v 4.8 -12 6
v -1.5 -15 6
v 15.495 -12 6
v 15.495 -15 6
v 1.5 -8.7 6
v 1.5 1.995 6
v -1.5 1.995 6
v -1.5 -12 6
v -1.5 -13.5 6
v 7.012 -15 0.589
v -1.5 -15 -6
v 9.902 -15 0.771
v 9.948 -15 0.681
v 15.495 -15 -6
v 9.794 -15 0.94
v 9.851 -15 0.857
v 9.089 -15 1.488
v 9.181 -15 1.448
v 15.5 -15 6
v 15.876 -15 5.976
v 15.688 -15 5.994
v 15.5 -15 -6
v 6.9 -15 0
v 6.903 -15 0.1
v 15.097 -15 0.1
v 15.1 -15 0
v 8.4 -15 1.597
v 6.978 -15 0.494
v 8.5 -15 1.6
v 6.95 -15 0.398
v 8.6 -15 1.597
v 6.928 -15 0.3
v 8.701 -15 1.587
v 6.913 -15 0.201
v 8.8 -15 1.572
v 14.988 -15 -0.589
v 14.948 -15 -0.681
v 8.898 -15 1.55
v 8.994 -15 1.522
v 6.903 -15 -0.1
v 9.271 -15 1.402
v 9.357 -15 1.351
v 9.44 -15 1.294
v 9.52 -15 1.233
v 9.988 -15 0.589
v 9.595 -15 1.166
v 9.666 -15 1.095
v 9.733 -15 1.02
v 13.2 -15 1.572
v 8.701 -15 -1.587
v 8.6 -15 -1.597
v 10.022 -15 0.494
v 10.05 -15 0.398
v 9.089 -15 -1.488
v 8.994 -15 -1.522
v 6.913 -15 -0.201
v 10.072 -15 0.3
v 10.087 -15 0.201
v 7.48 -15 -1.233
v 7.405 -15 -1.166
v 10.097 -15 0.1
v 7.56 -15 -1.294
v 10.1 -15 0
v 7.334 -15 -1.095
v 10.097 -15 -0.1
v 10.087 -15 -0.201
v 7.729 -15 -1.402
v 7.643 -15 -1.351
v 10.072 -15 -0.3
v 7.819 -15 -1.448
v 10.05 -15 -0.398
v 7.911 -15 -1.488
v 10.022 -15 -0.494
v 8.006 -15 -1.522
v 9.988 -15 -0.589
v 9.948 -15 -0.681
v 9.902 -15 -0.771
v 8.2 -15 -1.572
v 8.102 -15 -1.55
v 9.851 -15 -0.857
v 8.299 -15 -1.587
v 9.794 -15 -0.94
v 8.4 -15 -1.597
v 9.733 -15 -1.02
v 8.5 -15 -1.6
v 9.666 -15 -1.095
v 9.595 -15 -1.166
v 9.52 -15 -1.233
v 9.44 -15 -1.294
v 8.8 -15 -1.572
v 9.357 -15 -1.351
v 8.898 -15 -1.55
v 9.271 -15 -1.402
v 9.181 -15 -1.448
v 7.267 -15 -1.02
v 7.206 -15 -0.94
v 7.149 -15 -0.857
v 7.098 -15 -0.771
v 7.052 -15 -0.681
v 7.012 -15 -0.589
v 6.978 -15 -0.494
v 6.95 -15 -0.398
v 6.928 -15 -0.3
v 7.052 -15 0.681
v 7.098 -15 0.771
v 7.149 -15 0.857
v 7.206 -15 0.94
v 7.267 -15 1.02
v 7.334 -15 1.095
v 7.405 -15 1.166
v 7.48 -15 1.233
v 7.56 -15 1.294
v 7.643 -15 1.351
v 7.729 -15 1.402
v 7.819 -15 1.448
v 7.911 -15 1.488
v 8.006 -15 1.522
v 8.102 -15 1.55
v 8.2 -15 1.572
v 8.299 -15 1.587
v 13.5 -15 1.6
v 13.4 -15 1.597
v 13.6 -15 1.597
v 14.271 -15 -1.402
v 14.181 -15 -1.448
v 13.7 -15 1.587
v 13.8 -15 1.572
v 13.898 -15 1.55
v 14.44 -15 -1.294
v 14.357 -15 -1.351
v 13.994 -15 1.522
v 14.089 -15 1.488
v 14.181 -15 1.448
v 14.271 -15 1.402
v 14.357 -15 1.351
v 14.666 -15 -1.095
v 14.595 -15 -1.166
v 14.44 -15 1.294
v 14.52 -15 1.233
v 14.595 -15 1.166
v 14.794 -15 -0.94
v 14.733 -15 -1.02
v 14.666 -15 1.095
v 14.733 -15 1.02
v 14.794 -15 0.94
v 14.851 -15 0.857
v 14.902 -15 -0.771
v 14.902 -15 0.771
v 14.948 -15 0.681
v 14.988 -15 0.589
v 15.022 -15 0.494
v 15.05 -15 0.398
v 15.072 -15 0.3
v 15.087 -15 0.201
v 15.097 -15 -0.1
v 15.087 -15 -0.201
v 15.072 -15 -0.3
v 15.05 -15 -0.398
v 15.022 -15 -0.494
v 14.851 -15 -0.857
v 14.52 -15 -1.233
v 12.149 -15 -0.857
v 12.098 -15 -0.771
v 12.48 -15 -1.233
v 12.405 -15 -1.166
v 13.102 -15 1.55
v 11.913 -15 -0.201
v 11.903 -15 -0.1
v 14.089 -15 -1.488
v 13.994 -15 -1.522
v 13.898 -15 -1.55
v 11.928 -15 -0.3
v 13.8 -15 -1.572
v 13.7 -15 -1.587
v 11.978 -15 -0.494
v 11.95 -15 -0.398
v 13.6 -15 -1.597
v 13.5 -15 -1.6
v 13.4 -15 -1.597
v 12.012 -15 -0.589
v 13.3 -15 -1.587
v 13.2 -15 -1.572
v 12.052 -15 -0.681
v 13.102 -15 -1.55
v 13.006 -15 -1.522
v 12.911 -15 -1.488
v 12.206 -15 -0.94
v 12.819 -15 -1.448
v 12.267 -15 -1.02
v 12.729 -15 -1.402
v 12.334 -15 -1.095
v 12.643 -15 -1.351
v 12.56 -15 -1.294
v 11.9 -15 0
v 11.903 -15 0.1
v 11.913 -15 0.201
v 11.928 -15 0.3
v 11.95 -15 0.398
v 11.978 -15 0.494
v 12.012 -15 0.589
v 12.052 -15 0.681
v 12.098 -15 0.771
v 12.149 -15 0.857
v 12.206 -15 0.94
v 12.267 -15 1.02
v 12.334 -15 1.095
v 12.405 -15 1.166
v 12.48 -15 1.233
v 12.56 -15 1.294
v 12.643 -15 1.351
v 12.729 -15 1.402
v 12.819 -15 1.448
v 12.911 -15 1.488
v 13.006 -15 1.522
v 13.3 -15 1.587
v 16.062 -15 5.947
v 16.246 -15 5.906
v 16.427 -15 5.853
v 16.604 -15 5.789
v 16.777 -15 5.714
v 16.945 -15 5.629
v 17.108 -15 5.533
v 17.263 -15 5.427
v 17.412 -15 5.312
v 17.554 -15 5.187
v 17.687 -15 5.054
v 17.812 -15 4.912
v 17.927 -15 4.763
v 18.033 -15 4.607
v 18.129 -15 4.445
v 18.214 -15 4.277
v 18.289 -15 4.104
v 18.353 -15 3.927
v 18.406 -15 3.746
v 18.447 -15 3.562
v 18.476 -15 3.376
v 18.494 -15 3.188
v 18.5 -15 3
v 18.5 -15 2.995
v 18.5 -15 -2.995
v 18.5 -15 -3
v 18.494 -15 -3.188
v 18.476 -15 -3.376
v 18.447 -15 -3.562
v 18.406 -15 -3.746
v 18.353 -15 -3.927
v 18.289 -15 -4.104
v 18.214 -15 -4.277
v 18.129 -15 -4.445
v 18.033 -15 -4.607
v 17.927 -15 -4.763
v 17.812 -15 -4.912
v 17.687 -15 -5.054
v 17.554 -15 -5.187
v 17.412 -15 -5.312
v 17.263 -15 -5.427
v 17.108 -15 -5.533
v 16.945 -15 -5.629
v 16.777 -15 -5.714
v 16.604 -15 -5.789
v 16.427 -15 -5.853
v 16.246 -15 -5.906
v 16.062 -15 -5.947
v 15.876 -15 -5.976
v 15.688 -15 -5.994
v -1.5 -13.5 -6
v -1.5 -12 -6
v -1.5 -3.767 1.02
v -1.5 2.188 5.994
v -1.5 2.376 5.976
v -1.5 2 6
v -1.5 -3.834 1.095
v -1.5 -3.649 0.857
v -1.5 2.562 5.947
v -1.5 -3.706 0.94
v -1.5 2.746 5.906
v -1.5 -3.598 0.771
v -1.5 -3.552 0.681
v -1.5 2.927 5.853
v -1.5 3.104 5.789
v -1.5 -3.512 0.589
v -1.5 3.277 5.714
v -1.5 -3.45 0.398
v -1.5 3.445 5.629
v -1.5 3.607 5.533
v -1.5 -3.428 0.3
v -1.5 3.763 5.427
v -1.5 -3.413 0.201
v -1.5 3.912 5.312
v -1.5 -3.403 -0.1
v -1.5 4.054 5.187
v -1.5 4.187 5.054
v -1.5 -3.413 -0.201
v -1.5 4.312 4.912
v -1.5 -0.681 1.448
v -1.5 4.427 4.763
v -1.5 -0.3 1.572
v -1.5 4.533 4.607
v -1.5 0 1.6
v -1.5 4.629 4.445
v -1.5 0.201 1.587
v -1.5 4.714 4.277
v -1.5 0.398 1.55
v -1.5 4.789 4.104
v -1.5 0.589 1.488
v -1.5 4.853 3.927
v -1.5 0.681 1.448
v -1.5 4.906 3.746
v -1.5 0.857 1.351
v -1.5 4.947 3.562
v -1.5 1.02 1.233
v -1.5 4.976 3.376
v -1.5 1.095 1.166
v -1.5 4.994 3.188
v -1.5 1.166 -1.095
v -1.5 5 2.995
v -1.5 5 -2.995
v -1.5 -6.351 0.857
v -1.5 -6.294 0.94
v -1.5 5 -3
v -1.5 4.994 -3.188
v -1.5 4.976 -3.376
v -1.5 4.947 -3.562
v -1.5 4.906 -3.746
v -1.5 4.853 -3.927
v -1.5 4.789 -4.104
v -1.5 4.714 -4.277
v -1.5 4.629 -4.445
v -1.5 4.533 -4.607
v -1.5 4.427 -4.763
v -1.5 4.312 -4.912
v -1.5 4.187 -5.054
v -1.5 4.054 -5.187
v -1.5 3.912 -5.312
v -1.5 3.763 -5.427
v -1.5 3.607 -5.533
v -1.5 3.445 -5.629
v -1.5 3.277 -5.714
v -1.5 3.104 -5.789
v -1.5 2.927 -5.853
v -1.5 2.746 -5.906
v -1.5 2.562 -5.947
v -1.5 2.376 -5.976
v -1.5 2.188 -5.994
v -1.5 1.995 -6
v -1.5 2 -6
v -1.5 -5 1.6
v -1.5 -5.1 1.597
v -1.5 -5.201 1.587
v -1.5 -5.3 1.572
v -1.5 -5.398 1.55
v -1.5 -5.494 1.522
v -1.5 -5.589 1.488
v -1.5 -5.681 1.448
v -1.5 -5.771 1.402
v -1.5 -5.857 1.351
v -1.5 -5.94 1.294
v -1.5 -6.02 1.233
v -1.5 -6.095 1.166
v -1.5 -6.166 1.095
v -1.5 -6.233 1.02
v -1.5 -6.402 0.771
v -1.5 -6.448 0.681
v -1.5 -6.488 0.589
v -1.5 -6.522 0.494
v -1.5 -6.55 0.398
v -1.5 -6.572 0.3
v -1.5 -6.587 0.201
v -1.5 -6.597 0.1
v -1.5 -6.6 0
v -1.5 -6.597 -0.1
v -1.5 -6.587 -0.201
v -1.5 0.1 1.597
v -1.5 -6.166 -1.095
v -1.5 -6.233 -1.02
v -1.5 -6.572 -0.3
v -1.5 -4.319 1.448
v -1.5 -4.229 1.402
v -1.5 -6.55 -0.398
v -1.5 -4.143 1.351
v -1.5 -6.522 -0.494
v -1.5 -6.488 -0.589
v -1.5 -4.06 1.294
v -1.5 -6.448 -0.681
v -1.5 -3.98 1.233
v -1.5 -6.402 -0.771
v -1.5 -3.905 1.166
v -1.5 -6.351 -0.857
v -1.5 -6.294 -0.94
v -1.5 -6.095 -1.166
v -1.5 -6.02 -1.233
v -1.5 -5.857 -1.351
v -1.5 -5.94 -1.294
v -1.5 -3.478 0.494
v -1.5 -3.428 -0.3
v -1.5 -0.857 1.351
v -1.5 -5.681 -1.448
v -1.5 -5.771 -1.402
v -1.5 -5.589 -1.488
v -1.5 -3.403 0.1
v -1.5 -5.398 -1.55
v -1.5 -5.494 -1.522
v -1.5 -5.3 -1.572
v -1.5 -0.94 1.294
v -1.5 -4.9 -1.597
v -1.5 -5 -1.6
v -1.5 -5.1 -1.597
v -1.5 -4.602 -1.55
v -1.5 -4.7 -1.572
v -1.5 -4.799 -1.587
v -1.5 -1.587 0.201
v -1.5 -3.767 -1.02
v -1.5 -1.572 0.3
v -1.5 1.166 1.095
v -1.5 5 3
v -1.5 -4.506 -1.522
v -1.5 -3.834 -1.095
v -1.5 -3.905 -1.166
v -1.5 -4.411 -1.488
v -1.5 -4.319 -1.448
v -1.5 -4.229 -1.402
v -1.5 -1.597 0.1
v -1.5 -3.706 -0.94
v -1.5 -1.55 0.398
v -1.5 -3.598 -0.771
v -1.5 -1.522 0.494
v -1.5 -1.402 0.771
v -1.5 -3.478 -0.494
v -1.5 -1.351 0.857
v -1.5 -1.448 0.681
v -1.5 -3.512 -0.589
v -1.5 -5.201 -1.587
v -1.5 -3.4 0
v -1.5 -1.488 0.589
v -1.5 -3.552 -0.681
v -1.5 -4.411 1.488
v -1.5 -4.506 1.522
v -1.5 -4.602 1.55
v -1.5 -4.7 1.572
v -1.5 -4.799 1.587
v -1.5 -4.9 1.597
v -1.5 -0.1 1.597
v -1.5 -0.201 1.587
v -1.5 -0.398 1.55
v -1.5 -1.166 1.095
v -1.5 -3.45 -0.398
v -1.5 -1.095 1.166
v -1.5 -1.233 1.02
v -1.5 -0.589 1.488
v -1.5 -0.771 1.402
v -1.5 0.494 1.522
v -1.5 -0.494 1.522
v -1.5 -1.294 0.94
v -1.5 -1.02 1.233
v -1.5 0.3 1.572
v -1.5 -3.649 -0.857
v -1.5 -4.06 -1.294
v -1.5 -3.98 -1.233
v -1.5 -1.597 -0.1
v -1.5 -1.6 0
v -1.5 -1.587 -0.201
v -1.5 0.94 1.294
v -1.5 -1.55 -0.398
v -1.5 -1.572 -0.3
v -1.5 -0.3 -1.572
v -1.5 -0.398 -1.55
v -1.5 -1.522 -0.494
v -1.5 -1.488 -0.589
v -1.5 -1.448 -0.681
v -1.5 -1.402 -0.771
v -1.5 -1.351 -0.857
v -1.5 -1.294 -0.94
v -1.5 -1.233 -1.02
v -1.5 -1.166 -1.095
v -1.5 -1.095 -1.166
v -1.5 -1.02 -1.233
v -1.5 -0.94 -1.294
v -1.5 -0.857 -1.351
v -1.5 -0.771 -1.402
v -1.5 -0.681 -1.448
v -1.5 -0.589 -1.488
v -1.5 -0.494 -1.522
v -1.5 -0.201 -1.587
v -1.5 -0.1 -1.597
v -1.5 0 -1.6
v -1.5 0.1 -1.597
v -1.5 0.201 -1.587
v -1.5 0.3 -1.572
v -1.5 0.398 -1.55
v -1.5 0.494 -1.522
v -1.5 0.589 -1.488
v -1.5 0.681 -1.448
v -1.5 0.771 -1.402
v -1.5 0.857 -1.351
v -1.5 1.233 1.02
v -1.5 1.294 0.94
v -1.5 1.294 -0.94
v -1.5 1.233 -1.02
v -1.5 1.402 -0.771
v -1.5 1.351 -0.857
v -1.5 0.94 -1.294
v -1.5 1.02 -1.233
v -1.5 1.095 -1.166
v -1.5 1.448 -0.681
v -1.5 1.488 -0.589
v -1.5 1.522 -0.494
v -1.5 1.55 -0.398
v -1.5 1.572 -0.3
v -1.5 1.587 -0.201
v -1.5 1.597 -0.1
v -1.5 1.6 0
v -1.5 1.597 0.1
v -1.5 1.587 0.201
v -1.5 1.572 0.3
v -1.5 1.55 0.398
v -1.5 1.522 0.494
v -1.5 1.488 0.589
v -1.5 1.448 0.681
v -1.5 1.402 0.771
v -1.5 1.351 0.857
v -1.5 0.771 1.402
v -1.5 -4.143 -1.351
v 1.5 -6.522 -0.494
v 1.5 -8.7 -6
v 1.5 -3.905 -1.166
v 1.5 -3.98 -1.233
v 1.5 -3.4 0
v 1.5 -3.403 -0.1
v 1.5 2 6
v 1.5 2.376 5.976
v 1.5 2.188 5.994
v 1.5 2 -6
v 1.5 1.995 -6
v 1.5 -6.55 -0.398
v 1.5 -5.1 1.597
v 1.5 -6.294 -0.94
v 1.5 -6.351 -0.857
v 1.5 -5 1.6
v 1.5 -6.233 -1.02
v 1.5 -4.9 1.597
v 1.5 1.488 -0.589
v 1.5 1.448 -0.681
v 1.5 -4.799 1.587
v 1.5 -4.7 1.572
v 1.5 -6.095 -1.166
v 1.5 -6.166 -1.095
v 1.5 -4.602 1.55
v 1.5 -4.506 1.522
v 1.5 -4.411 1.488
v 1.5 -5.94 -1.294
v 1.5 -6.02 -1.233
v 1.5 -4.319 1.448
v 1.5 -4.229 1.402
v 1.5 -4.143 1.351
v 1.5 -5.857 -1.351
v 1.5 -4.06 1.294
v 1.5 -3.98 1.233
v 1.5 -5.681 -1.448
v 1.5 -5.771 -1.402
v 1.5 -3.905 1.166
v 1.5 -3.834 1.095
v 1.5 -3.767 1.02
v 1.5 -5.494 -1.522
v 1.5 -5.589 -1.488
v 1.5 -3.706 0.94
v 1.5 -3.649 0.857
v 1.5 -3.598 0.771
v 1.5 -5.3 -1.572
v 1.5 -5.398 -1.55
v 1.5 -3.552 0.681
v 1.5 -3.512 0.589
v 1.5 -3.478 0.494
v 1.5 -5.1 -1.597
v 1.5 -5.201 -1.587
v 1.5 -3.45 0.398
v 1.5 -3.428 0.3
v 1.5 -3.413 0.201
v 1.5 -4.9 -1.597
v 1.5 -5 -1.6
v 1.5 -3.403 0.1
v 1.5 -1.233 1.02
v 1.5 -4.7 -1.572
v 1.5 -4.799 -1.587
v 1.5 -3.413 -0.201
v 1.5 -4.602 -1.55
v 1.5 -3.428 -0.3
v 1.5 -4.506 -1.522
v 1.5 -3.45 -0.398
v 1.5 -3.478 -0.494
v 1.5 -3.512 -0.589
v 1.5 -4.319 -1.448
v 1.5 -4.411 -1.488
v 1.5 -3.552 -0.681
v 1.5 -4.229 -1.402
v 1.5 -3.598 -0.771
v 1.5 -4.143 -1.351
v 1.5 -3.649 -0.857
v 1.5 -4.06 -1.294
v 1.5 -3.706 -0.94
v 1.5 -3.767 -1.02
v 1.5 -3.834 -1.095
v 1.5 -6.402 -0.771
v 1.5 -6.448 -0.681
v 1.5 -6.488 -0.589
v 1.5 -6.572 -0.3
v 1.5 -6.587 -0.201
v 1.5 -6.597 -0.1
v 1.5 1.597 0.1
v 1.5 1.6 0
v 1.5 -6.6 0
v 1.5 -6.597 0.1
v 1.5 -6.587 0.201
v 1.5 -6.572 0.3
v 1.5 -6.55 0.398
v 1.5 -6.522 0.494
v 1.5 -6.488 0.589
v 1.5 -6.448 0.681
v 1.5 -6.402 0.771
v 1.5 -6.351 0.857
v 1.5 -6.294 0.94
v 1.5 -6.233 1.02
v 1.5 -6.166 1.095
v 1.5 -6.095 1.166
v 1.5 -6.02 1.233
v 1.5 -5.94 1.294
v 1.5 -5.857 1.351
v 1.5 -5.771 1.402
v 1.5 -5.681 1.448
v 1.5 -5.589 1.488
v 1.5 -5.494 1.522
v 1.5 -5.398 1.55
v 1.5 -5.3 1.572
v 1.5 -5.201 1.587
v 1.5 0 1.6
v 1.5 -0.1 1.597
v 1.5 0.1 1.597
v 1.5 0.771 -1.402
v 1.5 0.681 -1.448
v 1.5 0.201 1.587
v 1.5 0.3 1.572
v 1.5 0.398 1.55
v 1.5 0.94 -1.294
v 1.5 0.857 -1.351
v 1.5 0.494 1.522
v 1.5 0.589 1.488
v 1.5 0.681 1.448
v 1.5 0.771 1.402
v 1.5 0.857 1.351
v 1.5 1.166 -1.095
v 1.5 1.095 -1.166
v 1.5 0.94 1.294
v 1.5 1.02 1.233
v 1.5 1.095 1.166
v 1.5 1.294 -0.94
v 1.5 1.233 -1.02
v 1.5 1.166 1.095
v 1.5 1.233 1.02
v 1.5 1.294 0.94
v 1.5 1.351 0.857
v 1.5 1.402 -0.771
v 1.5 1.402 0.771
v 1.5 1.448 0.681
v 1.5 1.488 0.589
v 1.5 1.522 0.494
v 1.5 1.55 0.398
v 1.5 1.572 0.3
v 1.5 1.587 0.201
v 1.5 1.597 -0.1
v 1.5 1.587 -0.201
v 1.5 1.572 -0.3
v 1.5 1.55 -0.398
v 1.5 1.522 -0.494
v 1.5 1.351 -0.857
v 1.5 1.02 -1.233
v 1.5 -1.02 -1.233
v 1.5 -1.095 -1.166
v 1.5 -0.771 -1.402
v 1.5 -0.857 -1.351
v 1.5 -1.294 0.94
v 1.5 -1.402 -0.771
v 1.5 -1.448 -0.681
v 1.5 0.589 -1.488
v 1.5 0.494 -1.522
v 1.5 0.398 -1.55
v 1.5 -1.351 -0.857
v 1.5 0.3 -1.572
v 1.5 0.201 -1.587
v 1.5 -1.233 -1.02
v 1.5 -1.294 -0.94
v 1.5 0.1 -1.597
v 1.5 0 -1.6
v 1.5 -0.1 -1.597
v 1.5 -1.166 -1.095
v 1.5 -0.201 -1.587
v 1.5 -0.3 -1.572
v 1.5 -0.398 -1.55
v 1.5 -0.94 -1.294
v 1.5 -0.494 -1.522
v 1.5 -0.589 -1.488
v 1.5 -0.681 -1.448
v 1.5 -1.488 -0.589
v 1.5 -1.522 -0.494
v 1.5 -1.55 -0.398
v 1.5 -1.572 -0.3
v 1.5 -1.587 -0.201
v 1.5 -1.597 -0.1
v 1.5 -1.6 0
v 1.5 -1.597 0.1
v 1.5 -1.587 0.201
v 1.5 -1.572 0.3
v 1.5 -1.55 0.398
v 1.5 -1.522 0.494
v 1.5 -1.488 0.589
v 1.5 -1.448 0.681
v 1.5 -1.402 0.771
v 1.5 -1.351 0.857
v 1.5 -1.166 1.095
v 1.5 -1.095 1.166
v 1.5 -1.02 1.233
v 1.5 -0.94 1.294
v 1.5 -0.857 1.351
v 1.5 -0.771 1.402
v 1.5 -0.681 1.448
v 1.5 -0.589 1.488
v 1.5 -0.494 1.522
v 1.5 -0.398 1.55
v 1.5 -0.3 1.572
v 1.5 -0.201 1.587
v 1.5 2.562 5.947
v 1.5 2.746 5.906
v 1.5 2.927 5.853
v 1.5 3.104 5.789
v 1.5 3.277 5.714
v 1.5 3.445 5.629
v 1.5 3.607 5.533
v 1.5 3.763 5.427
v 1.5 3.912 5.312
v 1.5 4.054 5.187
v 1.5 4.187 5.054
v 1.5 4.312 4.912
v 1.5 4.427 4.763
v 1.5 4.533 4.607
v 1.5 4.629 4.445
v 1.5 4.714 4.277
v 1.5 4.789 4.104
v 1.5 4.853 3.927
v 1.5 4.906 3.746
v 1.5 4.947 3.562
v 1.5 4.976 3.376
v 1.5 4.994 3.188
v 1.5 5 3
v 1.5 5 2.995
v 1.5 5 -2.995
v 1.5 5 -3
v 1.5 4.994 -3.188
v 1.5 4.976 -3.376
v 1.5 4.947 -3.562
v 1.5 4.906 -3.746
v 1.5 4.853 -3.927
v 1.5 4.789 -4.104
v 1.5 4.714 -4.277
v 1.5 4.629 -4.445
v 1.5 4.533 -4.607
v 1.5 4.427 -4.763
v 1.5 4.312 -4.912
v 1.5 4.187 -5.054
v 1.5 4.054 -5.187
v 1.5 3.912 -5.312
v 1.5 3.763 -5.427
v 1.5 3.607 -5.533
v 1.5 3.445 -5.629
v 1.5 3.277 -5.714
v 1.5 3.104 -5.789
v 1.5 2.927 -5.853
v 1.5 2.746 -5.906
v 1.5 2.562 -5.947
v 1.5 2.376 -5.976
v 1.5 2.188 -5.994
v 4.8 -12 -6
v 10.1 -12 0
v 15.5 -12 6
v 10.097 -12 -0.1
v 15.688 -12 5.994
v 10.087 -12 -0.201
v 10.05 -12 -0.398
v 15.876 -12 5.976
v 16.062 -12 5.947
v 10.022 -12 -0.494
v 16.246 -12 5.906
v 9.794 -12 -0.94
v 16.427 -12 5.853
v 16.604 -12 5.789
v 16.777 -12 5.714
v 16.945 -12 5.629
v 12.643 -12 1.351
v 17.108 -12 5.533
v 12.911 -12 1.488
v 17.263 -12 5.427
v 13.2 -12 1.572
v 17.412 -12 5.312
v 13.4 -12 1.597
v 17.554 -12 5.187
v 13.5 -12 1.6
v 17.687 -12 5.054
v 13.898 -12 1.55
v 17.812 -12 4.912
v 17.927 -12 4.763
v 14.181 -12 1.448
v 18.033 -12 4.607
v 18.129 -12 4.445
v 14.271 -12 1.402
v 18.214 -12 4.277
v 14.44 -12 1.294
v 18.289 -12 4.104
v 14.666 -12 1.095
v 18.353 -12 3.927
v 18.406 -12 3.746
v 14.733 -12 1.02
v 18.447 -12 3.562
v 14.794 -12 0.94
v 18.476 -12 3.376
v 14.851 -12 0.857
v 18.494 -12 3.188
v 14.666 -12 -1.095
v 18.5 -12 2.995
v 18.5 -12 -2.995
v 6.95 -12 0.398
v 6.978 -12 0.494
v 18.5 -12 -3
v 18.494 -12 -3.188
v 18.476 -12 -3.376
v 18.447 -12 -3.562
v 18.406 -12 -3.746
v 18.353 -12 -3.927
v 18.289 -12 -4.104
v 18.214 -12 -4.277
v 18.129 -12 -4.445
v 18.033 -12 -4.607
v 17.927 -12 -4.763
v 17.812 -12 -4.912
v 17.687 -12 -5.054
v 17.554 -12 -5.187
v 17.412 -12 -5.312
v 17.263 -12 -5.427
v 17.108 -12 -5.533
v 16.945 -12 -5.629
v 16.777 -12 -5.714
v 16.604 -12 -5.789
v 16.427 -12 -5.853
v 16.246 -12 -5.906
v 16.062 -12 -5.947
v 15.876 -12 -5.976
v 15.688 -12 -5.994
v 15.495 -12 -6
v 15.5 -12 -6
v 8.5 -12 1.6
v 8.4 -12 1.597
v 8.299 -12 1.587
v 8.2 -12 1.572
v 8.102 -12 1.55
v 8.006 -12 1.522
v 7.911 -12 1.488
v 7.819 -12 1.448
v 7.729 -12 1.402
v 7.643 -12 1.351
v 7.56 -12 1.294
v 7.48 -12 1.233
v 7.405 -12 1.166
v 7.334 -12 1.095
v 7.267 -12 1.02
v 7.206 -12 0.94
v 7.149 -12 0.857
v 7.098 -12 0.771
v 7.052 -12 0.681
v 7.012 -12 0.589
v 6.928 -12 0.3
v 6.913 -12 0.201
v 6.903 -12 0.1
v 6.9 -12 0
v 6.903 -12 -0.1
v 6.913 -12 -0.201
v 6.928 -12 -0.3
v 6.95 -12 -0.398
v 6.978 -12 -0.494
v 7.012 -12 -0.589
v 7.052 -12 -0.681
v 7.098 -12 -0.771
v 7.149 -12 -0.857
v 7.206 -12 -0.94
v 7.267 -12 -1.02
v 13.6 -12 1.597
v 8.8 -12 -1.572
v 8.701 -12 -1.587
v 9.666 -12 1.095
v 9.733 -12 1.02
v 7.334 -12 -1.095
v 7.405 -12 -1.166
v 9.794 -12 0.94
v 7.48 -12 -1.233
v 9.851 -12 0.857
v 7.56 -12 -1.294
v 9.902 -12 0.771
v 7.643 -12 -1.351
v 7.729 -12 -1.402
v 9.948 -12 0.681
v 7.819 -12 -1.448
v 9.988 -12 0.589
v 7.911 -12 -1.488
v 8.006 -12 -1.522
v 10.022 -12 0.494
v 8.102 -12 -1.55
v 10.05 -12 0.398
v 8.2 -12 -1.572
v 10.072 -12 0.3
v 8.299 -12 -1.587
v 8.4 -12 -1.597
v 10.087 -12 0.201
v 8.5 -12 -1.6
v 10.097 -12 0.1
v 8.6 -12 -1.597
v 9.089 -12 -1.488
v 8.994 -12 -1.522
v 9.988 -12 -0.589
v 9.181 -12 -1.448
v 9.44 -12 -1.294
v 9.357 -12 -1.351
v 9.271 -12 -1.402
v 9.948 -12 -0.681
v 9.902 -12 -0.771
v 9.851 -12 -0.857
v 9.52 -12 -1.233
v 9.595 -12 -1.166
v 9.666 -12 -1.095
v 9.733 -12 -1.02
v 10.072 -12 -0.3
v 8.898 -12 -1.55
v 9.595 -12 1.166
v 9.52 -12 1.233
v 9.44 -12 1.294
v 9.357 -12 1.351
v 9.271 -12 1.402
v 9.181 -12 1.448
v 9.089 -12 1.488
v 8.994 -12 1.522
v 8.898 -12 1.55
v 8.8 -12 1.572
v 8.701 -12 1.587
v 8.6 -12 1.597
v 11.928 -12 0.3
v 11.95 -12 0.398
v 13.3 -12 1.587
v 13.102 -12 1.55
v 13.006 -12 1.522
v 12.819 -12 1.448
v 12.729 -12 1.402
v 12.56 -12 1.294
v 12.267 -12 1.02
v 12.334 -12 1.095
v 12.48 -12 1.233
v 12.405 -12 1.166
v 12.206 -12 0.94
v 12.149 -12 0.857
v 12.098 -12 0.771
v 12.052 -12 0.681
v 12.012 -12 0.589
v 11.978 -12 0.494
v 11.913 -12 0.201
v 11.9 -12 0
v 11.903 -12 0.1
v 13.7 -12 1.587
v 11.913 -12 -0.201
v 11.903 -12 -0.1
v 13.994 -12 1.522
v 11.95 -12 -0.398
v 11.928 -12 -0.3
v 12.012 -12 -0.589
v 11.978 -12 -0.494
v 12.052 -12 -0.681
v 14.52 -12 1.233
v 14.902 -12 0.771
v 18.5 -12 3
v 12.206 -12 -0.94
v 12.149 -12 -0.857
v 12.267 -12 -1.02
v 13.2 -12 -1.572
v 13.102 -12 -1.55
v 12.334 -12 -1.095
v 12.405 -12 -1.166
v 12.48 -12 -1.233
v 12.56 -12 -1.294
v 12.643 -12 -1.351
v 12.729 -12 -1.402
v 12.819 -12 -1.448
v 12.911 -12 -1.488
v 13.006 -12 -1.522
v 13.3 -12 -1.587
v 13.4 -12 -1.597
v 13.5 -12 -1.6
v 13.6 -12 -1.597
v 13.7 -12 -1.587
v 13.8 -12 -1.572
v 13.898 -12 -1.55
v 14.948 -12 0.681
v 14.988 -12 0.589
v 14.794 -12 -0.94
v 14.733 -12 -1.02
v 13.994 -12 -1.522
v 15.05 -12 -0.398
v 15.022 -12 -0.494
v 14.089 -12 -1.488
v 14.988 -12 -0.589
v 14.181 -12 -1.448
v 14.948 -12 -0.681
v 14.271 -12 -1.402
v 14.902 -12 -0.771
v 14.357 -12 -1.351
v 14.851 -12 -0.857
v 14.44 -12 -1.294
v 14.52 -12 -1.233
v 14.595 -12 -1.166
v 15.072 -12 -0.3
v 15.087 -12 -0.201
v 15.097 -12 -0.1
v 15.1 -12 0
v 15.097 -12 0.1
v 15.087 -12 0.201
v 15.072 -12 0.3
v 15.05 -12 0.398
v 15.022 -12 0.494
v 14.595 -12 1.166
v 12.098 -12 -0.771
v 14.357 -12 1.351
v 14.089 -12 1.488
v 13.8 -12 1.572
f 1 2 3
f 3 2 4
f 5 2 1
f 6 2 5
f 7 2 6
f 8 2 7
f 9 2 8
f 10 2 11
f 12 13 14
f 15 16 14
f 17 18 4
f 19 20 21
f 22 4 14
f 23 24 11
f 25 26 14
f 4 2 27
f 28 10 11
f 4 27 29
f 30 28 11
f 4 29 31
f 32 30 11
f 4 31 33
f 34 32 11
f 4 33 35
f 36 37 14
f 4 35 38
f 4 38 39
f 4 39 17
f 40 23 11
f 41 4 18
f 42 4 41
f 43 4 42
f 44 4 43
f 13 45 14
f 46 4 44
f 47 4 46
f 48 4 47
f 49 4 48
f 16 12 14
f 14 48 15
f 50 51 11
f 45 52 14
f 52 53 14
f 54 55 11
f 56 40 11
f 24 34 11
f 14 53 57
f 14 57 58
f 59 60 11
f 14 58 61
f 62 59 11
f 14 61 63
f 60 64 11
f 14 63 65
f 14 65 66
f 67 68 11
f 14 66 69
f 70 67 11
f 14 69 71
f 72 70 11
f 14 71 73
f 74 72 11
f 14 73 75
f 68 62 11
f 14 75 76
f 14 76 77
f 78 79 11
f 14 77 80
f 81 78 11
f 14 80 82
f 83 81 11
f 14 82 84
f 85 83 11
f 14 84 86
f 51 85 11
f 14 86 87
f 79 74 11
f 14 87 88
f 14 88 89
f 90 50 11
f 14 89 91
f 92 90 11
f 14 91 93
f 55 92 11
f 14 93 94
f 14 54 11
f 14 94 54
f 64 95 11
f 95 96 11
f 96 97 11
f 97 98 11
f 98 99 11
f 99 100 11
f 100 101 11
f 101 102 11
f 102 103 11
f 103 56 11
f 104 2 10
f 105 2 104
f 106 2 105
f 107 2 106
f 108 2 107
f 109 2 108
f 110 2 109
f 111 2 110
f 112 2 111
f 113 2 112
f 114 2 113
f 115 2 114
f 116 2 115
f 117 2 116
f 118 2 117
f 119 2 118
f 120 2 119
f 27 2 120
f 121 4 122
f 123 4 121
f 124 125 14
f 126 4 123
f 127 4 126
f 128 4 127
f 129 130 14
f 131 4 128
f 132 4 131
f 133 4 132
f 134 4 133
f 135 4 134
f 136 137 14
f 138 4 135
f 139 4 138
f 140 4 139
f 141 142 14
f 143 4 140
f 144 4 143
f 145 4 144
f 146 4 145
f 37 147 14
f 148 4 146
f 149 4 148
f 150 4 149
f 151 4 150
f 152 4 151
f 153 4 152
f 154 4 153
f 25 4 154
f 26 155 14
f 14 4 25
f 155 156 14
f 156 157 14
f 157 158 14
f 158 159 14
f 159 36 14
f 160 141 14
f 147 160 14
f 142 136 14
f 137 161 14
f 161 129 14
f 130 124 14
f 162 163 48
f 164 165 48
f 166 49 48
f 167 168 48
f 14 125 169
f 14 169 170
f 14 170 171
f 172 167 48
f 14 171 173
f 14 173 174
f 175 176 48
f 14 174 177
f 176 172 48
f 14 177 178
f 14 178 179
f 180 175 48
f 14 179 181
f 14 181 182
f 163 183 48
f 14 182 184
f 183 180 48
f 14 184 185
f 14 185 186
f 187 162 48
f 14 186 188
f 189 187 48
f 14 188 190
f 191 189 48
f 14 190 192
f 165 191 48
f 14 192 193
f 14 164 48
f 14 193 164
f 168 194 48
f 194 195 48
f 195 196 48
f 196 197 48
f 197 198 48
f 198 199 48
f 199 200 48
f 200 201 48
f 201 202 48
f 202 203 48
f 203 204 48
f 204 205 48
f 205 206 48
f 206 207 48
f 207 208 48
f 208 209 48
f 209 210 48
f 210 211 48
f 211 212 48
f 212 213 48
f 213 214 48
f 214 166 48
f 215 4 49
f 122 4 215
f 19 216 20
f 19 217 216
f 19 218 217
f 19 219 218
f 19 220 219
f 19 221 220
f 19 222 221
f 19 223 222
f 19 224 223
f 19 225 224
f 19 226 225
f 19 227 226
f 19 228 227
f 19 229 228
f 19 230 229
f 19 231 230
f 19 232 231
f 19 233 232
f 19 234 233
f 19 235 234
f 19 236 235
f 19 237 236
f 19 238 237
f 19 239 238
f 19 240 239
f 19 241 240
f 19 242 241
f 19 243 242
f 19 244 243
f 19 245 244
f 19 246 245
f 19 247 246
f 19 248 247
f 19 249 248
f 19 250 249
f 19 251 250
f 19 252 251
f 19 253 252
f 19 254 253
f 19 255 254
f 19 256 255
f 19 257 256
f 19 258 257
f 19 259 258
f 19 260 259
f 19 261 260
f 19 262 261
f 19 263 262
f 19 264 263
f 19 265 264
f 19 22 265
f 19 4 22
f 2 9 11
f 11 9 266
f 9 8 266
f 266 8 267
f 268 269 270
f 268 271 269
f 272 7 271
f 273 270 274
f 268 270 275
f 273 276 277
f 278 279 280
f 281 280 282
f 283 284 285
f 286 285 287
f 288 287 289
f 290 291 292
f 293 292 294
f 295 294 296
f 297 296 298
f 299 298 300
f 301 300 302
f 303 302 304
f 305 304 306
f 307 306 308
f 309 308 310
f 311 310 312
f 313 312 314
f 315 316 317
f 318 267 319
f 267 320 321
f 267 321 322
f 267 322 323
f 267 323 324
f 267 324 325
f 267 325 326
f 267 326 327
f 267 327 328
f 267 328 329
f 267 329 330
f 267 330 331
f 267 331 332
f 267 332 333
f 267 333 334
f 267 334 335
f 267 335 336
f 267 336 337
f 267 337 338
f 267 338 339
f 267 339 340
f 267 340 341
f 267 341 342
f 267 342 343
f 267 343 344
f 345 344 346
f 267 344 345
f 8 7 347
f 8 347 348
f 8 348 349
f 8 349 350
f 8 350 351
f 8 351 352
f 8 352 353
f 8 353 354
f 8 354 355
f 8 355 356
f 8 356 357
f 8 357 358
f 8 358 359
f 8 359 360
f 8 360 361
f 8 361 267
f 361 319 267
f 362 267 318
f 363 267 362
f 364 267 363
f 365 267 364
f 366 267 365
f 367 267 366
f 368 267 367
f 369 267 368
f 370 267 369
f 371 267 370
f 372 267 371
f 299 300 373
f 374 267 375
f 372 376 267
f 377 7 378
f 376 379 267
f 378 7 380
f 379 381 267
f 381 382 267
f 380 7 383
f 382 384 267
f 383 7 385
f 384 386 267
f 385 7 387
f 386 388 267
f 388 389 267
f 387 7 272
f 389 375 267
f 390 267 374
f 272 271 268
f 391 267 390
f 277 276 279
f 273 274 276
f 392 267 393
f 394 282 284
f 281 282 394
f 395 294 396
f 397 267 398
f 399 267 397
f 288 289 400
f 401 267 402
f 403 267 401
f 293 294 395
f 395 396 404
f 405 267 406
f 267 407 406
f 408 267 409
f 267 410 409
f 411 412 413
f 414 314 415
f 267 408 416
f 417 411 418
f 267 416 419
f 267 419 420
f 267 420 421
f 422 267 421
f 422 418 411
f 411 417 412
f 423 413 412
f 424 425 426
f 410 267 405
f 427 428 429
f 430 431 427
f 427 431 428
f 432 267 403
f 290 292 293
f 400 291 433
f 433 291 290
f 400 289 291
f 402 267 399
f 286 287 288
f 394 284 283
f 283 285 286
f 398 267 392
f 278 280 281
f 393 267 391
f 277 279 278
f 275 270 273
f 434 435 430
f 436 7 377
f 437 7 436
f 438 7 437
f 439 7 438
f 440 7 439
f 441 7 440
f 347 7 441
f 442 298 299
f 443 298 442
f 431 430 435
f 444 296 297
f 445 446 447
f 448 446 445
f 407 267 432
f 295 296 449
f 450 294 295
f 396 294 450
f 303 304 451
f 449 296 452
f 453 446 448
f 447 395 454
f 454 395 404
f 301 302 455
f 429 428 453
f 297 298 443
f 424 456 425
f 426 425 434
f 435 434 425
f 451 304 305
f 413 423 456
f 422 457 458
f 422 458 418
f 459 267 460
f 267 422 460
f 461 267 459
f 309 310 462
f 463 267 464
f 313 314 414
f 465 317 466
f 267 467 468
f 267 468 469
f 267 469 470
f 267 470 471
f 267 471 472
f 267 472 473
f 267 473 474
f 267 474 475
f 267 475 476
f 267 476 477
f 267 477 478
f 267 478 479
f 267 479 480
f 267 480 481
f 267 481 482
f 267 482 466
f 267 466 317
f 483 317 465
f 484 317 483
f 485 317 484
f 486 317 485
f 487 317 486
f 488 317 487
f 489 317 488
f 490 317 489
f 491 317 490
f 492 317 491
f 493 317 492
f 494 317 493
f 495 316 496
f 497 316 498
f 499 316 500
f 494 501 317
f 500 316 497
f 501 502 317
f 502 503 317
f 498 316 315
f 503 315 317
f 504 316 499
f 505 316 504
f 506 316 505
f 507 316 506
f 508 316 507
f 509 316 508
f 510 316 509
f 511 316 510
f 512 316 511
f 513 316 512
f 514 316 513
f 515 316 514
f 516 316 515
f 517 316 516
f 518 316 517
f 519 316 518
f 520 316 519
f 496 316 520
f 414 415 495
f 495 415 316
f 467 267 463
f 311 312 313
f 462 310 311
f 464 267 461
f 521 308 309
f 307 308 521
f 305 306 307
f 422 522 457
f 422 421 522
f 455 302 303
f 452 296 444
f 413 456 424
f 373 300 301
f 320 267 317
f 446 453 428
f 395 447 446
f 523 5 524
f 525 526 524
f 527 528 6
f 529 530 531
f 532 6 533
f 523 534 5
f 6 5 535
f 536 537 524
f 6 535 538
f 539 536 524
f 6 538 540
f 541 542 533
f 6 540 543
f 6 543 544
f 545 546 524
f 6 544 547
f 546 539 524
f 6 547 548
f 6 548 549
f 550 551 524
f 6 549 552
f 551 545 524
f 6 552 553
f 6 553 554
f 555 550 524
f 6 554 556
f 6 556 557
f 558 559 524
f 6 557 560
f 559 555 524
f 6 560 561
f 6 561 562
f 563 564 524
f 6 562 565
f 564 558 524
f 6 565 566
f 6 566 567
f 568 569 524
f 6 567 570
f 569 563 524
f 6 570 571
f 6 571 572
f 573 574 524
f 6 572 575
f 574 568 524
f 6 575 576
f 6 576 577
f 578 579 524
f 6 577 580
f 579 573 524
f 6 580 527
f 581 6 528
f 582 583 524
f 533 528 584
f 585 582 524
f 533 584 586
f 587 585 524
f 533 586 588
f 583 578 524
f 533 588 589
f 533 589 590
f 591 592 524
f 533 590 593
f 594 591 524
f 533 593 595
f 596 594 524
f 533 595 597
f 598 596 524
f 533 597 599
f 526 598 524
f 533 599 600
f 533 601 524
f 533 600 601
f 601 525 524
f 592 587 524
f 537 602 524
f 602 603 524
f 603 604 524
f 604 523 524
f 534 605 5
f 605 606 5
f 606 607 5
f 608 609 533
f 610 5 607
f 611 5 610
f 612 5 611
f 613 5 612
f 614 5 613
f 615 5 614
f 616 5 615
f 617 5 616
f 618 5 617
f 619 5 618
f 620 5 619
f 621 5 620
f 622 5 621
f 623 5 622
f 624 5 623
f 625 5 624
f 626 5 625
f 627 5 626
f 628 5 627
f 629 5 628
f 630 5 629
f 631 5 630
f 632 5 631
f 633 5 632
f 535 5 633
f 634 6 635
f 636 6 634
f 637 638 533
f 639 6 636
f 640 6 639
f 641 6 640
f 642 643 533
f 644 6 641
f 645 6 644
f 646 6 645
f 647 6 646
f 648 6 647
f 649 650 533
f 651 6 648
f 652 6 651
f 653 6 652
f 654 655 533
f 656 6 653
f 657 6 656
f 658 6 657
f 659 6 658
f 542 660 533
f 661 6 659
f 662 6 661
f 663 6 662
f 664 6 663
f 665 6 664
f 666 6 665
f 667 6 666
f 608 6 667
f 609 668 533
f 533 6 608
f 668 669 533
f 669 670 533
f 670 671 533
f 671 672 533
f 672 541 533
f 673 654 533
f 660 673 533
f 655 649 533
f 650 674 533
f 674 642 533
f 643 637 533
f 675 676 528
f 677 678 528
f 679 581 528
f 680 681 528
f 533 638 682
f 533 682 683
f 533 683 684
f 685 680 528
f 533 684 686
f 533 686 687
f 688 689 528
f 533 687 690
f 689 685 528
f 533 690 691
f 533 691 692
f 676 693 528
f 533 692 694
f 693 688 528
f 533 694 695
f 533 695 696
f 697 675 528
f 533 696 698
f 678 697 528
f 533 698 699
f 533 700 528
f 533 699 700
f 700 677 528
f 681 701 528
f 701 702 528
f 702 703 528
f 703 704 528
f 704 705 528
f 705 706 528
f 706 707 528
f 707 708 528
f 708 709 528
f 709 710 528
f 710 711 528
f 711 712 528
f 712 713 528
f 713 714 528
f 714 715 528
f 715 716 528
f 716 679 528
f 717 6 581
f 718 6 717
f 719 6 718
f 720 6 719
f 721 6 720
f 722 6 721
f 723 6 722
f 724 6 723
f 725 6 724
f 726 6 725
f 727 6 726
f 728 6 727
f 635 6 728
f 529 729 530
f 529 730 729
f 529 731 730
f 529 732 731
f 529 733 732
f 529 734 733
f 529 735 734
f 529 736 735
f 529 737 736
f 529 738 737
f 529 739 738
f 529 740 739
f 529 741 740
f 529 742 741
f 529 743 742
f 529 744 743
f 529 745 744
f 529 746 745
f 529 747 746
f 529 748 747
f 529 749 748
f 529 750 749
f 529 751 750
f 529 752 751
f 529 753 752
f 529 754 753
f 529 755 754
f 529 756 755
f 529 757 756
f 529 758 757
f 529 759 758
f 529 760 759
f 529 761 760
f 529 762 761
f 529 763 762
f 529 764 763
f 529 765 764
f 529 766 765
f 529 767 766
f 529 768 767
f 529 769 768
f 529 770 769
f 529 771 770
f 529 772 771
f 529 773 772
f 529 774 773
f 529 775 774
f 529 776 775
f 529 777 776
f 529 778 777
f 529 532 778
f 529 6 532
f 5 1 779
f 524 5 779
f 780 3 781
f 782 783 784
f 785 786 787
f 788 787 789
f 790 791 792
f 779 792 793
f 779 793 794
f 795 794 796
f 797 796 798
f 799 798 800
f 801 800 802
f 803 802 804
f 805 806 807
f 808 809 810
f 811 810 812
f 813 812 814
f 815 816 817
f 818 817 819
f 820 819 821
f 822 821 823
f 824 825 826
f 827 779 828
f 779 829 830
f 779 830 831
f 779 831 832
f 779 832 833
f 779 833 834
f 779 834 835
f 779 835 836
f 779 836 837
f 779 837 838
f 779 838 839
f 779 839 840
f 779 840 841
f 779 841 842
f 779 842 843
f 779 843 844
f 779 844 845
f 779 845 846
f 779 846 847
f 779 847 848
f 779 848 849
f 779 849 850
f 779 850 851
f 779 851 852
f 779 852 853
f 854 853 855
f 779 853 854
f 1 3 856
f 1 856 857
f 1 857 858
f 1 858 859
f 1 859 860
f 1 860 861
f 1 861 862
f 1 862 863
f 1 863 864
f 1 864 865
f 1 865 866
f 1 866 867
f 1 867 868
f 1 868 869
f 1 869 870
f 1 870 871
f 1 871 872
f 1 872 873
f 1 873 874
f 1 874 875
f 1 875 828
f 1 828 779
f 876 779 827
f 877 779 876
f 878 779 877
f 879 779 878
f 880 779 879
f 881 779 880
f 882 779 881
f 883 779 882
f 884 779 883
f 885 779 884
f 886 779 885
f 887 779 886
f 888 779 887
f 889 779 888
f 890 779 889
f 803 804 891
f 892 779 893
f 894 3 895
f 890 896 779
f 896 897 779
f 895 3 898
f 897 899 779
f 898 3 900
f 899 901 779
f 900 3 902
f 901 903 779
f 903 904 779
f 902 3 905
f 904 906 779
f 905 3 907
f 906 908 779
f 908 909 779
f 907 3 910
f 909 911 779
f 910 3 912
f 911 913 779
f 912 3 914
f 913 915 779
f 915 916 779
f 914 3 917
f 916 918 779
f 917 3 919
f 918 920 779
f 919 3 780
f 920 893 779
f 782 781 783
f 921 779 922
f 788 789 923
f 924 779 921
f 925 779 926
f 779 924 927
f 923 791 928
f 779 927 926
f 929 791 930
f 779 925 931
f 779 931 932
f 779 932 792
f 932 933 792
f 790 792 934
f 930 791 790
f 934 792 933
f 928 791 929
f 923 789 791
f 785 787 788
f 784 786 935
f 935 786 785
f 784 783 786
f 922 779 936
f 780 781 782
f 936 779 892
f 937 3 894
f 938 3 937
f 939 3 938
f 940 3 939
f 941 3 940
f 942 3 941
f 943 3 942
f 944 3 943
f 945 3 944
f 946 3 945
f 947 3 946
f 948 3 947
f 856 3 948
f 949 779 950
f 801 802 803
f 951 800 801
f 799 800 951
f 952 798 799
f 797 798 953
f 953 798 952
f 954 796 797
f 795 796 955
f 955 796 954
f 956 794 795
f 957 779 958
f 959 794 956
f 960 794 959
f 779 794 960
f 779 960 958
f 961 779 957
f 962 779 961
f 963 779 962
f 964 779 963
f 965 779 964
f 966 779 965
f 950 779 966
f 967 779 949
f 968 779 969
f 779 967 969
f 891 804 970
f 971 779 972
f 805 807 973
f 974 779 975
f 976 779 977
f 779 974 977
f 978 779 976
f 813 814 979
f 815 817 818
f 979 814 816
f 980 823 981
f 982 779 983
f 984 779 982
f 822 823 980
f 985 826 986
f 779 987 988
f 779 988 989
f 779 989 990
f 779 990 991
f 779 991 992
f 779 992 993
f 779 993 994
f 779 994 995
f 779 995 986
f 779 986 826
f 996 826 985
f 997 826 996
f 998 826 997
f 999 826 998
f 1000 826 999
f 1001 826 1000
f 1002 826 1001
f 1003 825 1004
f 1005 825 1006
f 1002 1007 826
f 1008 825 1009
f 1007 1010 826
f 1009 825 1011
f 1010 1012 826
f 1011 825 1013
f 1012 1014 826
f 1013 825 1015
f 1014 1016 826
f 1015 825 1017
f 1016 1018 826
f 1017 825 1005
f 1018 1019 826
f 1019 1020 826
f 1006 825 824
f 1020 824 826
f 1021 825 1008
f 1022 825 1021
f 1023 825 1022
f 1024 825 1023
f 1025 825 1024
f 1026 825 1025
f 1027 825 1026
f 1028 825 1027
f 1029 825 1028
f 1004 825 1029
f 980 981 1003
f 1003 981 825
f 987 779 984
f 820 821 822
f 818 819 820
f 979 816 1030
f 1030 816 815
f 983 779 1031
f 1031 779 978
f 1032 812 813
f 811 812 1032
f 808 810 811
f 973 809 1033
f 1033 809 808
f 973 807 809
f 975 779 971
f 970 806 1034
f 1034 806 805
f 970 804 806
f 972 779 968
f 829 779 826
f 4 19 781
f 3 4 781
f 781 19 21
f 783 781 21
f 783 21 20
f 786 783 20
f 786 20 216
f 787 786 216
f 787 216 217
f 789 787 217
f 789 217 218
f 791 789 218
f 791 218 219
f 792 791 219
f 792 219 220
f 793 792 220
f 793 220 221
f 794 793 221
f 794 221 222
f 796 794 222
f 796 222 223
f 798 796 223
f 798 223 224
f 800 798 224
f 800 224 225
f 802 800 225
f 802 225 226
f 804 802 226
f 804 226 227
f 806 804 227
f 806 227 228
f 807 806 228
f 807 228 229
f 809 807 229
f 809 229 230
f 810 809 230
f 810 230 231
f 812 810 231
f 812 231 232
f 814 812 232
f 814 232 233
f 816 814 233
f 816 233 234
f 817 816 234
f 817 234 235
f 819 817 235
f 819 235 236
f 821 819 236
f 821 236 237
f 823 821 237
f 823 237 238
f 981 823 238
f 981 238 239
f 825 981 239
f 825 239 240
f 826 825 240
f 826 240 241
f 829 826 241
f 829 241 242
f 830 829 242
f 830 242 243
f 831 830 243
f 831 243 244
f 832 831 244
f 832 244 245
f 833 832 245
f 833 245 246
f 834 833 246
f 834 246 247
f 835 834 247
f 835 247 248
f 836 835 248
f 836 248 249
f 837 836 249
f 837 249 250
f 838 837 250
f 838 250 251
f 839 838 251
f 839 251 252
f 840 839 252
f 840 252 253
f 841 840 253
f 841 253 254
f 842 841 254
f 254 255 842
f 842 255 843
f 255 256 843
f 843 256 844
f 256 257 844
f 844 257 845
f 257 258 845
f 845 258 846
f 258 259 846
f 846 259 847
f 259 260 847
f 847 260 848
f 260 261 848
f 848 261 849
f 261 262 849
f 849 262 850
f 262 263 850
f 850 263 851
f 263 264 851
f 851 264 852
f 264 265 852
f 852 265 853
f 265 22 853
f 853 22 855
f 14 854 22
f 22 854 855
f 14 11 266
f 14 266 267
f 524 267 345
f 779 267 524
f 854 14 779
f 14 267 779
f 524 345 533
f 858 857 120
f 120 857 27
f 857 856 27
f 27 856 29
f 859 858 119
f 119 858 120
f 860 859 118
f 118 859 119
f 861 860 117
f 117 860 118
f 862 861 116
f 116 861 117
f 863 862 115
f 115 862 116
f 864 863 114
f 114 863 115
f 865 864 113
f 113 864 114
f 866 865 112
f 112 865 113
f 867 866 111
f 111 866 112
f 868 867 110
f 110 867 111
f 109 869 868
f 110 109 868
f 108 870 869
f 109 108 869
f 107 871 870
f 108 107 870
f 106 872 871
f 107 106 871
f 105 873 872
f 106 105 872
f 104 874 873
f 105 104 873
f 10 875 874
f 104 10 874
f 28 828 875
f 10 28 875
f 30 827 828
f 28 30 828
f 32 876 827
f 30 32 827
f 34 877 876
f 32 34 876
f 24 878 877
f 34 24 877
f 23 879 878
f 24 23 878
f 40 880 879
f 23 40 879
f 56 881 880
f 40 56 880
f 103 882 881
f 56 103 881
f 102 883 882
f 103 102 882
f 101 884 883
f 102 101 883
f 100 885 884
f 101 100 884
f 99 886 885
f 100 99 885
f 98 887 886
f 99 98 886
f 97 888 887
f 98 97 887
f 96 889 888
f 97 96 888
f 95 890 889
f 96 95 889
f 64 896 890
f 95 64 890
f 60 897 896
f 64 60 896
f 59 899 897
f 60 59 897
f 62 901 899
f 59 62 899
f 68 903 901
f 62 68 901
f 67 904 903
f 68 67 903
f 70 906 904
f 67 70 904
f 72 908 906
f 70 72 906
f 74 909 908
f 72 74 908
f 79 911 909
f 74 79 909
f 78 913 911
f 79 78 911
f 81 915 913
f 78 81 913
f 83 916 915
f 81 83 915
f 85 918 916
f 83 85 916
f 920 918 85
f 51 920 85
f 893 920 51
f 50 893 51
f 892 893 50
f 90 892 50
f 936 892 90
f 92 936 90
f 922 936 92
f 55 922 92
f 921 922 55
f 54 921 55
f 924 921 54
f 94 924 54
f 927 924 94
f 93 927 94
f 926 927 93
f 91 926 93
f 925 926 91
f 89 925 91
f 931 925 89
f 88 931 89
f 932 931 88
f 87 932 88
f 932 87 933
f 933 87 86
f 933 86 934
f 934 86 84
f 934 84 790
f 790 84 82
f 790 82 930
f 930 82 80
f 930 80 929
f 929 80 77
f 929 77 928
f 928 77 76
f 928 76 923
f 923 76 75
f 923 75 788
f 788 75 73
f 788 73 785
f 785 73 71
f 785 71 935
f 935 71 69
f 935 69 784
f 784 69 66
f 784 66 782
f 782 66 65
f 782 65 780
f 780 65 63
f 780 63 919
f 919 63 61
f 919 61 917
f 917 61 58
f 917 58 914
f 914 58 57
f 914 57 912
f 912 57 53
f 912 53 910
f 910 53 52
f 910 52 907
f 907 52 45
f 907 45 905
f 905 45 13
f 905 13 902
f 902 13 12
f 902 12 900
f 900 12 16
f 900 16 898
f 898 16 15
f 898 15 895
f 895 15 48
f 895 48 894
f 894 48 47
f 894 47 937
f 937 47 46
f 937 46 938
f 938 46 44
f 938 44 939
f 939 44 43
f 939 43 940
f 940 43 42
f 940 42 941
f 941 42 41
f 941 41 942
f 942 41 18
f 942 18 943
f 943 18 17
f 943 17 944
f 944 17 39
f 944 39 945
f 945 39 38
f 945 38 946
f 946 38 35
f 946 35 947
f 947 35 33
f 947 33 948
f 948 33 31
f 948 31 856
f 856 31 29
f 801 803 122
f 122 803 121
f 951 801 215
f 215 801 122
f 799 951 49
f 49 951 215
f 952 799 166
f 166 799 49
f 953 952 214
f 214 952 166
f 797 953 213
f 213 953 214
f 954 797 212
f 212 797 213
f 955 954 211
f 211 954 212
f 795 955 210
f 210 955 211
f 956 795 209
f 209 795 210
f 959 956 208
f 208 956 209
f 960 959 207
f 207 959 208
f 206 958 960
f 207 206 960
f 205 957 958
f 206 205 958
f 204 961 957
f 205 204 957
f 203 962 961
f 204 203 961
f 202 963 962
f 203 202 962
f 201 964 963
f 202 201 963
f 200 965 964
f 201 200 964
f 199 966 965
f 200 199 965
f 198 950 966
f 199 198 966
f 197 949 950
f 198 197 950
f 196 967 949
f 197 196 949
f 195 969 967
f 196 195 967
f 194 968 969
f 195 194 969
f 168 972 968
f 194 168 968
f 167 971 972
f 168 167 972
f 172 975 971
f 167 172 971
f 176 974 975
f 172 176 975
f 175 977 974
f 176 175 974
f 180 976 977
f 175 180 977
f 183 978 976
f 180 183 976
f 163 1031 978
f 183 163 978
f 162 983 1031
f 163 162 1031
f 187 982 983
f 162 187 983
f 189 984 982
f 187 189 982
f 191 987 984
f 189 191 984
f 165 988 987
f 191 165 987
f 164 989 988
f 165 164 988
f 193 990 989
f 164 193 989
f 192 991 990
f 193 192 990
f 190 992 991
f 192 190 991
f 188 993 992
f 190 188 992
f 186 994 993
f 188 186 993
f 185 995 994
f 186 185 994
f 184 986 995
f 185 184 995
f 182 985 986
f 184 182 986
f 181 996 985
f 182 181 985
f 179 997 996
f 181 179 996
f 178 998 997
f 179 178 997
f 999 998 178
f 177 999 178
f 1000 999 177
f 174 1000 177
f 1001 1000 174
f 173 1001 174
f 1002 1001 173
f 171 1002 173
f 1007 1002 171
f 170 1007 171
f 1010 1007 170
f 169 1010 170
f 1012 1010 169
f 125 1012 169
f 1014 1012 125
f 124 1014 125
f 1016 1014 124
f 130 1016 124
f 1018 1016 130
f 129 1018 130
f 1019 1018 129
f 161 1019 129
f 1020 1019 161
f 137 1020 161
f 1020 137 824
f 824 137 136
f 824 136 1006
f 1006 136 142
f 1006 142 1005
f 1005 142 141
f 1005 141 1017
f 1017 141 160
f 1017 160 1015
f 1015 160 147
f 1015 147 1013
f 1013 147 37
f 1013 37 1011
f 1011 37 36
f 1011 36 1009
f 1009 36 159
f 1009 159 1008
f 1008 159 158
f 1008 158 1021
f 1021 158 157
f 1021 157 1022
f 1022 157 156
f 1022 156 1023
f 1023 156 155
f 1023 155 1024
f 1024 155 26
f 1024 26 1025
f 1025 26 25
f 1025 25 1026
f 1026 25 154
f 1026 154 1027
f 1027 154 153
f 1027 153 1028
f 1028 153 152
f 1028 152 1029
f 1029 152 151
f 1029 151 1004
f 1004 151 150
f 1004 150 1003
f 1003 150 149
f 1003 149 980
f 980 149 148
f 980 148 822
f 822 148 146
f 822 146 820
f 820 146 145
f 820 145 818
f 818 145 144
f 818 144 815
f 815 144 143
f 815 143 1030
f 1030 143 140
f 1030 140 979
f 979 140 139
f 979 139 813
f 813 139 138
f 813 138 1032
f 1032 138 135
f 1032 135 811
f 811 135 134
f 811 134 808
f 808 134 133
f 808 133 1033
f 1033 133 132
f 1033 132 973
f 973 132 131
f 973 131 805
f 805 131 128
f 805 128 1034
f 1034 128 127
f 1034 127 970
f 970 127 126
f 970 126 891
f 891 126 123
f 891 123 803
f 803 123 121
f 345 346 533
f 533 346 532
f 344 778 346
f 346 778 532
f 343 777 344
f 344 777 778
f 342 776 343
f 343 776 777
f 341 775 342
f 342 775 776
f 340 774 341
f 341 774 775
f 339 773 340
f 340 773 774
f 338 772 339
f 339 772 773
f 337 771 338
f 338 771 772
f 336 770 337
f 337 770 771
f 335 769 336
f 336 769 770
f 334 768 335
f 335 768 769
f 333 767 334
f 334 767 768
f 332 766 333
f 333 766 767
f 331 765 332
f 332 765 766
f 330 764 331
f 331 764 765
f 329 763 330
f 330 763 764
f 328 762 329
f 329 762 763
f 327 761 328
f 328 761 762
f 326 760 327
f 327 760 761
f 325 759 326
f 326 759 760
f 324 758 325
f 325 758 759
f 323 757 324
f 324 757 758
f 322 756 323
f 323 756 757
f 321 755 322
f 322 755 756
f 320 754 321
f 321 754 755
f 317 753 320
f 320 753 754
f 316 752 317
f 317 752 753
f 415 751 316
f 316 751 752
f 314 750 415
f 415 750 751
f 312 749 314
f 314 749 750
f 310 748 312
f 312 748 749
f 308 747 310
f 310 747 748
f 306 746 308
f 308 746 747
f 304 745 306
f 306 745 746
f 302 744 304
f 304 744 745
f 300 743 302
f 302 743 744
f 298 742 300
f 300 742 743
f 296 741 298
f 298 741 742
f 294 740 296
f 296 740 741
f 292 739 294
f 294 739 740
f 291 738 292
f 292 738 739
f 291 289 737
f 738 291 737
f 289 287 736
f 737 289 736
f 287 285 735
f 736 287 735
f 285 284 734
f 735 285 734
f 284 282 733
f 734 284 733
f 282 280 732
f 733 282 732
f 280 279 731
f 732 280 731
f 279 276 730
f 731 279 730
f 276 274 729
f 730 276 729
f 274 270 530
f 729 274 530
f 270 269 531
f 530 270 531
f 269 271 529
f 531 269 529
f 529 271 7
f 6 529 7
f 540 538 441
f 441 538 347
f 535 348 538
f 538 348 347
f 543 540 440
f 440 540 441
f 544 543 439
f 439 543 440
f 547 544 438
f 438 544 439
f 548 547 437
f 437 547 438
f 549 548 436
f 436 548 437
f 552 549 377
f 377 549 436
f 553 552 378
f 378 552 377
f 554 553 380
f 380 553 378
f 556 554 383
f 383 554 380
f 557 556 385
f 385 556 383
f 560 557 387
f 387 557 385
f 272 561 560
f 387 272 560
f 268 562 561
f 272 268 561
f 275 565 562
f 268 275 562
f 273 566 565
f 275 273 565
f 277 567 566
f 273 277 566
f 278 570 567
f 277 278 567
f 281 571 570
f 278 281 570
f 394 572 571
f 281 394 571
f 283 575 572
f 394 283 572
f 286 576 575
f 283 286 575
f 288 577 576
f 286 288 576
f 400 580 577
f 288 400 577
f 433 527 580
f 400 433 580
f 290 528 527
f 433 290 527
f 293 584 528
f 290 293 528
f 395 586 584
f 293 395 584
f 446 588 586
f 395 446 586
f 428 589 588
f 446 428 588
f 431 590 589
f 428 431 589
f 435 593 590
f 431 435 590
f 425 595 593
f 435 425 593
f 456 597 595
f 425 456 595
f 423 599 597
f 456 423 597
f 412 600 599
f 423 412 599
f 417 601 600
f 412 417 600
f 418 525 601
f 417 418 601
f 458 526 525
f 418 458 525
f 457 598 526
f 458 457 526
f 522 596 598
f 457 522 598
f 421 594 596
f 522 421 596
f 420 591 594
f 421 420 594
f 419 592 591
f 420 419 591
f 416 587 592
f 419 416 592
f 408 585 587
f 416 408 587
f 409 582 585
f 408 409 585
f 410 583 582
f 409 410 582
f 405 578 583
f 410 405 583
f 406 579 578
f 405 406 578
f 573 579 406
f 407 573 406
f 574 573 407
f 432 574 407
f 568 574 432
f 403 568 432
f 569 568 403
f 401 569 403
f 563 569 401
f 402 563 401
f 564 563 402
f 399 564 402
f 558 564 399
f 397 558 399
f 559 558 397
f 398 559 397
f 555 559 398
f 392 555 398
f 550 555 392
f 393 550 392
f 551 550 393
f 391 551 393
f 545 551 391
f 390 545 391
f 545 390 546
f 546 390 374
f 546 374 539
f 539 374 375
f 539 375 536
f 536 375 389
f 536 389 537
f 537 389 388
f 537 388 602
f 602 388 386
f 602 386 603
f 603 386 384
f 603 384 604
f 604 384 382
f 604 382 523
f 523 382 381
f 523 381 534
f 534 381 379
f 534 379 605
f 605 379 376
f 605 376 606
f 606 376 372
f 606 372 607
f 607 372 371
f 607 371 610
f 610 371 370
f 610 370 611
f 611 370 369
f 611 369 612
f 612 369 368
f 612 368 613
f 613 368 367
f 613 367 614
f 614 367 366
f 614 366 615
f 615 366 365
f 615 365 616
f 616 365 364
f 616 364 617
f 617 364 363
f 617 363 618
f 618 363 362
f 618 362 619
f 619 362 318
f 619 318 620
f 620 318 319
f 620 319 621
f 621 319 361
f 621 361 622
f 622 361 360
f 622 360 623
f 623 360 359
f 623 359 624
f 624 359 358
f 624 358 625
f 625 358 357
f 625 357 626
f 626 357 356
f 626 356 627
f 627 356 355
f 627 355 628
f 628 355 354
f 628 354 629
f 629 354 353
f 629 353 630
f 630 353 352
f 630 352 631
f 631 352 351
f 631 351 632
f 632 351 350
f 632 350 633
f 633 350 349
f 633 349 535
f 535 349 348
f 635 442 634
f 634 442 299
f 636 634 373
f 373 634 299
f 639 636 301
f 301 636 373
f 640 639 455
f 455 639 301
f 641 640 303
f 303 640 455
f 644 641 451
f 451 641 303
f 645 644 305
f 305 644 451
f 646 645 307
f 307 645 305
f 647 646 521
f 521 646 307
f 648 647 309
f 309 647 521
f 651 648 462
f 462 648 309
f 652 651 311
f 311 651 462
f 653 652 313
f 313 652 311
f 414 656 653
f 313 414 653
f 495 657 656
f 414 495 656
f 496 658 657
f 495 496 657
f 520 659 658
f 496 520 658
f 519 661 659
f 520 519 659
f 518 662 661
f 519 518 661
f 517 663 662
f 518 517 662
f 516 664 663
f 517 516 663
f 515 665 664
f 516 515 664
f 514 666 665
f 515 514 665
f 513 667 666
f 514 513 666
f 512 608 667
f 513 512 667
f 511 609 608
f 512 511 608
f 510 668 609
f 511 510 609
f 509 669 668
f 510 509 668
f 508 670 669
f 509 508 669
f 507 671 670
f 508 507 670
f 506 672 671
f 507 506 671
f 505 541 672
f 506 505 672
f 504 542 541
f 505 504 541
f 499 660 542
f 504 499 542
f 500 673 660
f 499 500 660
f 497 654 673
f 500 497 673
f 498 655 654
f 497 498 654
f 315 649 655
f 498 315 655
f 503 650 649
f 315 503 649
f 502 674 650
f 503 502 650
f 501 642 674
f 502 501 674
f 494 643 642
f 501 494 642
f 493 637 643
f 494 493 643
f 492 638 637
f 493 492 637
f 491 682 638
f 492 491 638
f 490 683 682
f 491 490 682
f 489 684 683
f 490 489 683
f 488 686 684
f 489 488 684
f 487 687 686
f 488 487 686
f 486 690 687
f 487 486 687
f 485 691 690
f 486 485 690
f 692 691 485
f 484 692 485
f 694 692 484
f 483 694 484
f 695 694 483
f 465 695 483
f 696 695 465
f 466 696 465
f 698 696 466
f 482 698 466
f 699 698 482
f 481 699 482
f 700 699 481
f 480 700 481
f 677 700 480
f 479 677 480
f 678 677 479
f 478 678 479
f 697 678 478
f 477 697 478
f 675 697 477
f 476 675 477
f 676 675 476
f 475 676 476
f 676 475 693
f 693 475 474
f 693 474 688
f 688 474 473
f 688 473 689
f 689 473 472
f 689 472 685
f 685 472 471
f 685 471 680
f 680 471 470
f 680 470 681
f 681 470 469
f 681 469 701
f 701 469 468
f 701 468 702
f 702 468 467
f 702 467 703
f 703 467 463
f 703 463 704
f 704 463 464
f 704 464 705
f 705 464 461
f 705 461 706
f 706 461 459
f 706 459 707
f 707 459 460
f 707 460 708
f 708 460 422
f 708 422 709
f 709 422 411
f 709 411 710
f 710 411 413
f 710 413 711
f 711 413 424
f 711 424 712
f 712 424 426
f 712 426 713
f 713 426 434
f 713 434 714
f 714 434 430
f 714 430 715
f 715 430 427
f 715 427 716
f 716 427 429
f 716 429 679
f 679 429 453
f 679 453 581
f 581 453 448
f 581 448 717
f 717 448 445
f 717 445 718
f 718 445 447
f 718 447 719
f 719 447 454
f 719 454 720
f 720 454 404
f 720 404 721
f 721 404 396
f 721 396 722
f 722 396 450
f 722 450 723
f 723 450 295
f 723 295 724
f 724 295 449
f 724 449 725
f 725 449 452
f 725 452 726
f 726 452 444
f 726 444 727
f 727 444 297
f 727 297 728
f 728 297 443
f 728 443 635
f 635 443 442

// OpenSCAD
$fn=100;
rotate(a=[0,90,0])
union(){
difference() {
translate([0,-5,0])
cube([12,20,3],center=true);
translate([0,0,0])
  cylinder(r=1.5+0.1,h=3+0.01, center=true);
translate([0,-5,0])
  cylinder(r=1.5+0.1,h=3+0.01, center=true);
translate([-4.5,3.5,0])
cube([3.01,3.01,3.01],center=true);
translate([4.5,3.5,0])
cube([3.01,3.01,3.01],center=true);
}


translate([-3,2,0])
{
difference(){
cylinder(r=3,h=3, center=true);
translate([-3,-3,-1.6])
cube([6-0.01,3-0.01,3.2]);
}
}


translate([3,2,0])
{
difference(){
cylinder(r=3,h=3, center=true);
translate([-3,-3,-1.6])
cube([6-0.01,3-0.01,3.2]);
}
}

translate([0,-13.5,13.5])
rotate(a=[90,0,0]){
difference() {
translate([0,-5,0])
cube([12,20,3],center=true);
translate([0,0,0])
  cylinder(r=1.5+0.1,h=3+0.01, center=true);
translate([0,-5,0])
  cylinder(r=1.5+0.1,h=3+0.01, center=true);
translate([-4.5,3.5,0])
cube([3.01,3.01,3.01],center=true);
translate([4.5,3.5,0])
cube([3.01,3.01,3.01],center=true);
}

translate([-3,2,0])
{
difference(){
cylinder(r=3,h=3, center=true);
translate([-3,-3,-1.6])
cube([6-0.01,3-0.01,3.2]);
}
}

translate([3,2,0])
{
difference(){
cylinder(r=3,h=3, center=true);
translate([-3,-3,-1.6])
cube([6-0.01,3-0.01,3.2]);
}
}

}
hull(){
translate([6,-12-.1,1.5-.1])
rotate(a=[0,0,90])
prism(1, 3.5, 3.5);
translate([-5,-12-.1,1.5-.1])
rotate(a=[0,0,90])
prism(1, 3.5, 3.5);

}
}



module prism(l, w, h) {
	translate([0, l, 0]) rotate( a= [90, 0, 0]) 
	linear_extrude(height = l) polygon(points = [
		[0, 0],
		[w, 0],
		[0, h]
	], paths=[[0,1,2,0]]);
}
